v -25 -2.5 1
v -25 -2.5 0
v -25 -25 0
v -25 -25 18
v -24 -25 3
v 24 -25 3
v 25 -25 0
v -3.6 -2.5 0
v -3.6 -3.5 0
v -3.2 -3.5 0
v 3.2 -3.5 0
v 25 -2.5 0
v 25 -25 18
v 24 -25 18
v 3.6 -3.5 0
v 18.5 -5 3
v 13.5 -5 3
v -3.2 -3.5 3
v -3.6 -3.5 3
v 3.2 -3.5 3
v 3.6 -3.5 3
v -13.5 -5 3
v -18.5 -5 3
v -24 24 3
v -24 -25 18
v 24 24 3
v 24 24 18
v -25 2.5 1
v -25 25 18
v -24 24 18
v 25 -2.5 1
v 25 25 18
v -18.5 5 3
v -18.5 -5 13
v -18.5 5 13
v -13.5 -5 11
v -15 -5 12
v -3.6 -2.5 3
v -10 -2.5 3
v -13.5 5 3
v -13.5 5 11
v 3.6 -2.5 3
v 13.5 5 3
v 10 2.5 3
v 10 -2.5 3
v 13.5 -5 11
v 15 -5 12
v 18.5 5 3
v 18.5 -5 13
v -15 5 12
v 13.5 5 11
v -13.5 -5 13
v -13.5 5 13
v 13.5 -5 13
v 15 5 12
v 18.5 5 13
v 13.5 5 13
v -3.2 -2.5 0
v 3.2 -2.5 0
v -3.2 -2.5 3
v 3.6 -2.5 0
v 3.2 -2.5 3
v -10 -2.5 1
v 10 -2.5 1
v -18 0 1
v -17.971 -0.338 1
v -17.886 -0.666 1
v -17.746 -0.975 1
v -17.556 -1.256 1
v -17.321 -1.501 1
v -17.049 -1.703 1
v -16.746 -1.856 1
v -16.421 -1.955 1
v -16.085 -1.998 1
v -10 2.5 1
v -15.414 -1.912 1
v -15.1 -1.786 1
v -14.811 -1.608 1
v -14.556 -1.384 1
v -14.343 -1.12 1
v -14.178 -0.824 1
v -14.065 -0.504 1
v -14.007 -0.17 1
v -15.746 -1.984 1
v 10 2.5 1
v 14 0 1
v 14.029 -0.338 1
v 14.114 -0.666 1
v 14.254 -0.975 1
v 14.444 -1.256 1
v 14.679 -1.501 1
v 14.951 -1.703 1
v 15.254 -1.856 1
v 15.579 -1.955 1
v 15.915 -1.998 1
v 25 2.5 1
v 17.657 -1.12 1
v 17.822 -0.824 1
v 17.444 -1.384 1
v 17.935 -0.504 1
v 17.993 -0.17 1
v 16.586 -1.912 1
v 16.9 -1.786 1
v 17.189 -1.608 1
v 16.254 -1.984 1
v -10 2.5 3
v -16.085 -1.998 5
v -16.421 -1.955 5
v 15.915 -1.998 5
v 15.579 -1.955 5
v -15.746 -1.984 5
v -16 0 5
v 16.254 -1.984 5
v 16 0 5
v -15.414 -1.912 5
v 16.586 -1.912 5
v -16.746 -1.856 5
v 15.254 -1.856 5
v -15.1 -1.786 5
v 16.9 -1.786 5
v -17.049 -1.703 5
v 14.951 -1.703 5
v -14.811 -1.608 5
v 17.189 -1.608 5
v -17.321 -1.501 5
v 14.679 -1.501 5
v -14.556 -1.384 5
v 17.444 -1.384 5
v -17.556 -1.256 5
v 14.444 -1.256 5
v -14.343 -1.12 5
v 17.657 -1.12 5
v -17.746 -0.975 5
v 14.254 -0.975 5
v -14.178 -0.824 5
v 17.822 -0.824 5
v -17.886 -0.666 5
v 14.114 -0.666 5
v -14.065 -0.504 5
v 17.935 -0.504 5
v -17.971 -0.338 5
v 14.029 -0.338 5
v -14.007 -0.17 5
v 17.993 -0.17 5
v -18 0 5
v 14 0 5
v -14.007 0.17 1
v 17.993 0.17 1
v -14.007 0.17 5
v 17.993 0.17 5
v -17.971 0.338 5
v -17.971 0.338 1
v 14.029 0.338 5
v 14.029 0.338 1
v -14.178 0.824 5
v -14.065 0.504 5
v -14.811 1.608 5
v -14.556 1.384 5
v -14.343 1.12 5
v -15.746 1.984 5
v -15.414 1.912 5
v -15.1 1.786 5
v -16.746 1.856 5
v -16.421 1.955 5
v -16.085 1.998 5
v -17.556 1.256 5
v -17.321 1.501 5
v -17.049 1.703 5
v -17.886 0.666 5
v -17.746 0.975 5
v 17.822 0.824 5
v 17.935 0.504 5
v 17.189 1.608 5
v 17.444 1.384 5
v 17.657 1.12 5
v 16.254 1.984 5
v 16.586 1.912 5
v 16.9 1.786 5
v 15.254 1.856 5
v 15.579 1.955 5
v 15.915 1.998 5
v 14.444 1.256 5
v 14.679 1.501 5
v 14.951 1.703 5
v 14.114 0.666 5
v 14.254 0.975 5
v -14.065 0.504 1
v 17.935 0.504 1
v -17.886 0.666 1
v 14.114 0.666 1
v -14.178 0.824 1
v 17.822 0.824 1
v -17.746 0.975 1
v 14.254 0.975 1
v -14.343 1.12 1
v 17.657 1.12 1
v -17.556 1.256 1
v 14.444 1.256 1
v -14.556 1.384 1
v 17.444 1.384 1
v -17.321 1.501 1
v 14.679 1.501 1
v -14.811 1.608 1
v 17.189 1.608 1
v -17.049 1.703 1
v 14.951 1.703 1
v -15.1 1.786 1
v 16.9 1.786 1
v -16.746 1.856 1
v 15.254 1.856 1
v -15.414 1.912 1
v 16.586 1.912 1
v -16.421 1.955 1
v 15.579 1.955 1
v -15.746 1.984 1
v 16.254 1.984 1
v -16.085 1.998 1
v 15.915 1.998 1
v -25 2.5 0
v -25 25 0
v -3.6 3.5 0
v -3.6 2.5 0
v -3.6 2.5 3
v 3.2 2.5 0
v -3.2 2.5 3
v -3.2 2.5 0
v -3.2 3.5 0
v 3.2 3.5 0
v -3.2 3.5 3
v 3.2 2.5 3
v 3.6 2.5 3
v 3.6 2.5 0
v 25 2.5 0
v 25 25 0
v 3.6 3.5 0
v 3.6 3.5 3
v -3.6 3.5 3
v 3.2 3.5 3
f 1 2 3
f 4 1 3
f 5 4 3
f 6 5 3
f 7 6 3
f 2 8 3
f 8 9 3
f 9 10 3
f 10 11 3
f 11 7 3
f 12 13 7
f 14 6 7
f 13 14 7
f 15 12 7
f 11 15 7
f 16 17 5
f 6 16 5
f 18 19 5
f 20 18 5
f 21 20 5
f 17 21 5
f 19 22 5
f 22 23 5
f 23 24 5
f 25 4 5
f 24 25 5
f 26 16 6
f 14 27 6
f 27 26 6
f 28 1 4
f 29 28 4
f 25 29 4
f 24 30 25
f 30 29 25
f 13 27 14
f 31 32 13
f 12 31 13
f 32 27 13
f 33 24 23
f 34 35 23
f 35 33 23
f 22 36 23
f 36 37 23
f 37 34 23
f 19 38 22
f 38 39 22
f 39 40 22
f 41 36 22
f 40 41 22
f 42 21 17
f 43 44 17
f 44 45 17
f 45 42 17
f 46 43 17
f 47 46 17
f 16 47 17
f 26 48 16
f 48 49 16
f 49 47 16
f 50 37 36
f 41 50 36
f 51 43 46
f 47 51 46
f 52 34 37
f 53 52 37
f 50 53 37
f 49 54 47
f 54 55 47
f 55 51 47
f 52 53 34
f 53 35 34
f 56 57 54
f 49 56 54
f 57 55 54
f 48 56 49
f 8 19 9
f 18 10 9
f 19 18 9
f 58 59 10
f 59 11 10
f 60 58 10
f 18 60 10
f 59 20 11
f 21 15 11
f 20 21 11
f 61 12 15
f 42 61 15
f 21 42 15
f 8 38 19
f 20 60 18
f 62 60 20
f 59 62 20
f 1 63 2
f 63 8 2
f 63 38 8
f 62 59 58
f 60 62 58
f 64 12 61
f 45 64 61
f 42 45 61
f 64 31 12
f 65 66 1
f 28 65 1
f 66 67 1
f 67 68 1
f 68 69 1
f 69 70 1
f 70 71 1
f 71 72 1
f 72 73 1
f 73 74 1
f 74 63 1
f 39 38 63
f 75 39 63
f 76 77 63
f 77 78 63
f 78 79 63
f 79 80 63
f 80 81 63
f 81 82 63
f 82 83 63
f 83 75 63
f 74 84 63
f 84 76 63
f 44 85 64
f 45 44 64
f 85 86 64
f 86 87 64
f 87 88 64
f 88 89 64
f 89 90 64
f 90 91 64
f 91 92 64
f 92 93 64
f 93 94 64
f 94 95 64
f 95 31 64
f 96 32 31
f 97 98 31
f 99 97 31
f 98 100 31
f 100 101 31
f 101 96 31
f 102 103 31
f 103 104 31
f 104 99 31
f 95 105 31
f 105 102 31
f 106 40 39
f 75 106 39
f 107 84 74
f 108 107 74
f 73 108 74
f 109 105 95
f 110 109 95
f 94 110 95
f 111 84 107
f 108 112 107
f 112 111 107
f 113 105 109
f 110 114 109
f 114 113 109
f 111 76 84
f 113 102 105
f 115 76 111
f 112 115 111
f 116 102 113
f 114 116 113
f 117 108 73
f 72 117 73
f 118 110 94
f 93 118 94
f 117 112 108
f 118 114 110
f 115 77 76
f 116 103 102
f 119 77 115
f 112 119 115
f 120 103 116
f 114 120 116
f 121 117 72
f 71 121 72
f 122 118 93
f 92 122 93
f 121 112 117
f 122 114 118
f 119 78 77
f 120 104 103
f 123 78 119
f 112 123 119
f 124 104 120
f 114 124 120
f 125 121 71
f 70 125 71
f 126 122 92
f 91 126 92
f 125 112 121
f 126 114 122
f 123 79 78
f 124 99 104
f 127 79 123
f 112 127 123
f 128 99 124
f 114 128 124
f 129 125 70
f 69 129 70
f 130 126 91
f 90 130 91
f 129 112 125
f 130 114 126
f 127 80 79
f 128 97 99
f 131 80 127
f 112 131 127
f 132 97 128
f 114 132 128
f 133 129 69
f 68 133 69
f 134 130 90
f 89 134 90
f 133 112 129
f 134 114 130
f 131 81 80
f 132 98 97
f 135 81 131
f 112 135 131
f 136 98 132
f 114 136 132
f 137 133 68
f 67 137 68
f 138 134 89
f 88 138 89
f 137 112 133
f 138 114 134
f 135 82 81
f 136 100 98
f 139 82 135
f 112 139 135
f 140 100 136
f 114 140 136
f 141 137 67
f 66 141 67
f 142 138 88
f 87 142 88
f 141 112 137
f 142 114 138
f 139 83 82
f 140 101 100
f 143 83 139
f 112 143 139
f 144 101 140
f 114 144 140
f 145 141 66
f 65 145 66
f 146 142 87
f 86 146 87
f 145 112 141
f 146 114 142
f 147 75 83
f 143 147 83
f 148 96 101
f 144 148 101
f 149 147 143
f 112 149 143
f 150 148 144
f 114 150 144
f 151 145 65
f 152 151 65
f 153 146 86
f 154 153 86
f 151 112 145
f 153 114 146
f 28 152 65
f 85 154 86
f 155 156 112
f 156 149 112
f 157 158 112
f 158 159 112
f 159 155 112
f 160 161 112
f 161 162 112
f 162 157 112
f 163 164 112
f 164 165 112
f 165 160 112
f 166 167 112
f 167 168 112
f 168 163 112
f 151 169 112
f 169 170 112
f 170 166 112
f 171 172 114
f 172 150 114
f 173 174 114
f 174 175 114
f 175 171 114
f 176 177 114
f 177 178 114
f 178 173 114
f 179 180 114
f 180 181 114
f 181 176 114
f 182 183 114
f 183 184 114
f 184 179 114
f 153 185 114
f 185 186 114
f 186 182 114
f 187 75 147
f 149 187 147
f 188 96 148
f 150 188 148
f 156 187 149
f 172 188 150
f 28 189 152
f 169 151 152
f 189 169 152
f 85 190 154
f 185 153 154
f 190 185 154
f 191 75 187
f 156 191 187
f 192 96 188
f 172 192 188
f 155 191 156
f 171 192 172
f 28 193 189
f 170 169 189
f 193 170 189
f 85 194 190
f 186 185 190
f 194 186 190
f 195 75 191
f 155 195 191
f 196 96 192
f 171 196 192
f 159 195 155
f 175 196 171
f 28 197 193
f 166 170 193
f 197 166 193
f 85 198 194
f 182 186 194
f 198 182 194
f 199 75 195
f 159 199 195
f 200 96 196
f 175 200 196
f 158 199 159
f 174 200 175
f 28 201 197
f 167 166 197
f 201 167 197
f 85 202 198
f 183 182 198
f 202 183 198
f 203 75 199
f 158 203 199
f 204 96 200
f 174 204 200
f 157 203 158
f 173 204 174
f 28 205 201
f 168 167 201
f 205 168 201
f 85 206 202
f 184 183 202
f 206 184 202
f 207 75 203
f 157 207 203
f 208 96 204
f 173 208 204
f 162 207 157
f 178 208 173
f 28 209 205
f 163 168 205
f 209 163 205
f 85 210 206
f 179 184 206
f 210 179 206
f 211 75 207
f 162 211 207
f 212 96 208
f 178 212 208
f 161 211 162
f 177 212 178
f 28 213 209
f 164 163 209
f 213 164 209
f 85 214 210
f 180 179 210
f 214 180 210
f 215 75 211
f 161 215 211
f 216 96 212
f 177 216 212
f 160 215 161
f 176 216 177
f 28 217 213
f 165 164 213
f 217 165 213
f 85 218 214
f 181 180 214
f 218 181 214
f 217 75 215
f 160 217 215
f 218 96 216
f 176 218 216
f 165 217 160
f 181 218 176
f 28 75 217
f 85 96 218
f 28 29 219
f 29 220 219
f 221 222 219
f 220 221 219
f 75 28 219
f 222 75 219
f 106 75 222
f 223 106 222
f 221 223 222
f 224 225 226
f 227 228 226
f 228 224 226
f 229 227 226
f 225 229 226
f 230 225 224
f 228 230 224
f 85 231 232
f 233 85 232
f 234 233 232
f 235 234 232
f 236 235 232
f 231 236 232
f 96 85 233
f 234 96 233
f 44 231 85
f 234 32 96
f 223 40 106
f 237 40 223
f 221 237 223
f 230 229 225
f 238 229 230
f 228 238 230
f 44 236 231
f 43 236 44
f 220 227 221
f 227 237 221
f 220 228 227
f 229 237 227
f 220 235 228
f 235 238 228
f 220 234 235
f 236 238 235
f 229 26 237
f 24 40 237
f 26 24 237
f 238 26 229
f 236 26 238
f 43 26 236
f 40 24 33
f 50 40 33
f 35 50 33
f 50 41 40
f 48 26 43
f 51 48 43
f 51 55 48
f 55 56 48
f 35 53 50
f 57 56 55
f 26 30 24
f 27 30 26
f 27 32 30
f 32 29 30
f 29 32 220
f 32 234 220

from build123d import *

# Parameters (mm, degrees)
SKICA1_W                 = 50
SKICA1_H                 = 50
P_IDAT_VYSUNUT_M2_DEPTH  = 3
SKICA4_W                 = 20
SKICA4_H                 = 5
ODEBRAT_VYSUNUT_M1_DEPTH = 2
SKICA5_W                 = 50
SKICA5_H                 = 5
ODEBRAT_VYSUNUT_M3_DEPTH = 1
SKICA10_W                = 5
SKICA10_H                = 10
P_IDAT_VYSUNUT_M6_DEPTH  = 10
ODEBRAT_VYSUNUT_M6_DEPTH = 10
P_IDAT_VYSUNUT_M9_DEPTH  = 15
SKICA16_W                = 0.4
SKICA16_H                = 7
ODEBRAT_VYSUNUT_M7_DEPTH = 10
SKICA17_R                = 2
ODEBRAT_VYSUNUT_M8_DEPTH = 4


with BuildPart() as part:
    # Skica1 → Přidat vysunutím2 (new body)
    with BuildSketch(Plane.XY):
        Rectangle(SKICA1_W, SKICA1_H)
    extrude(amount=P_IDAT_VYSUNUT_M2_DEPTH)

    # Skica4 → Odebrat vysunutím1 (cut)
    with BuildSketch(Plane.XY.offset(3)):
        Rectangle(SKICA4_W, SKICA4_H)
    extrude(amount=-ODEBRAT_VYSUNUT_M1_DEPTH, mode=Mode.SUBTRACT)

    # Skica5 → Odebrat vysunutím3 (cut)
    with BuildSketch(Plane(origin=(0, 0, 0), x_dir=(-1, 0, 0), z_dir=(0, 0, -1))):
        Rectangle(SKICA5_W, SKICA5_H)
    extrude(amount=-ODEBRAT_VYSUNUT_M3_DEPTH, mode=Mode.SUBTRACT)

    # Skica10 → Přidat vysunutím6 (add)
    with BuildSketch(Plane.XY.offset(3)):
        with Locations((-16, 0)):
            Rectangle(SKICA10_W, SKICA10_H)
        with Locations((16, 0)):
            Rectangle(SKICA10_W, SKICA10_H)
    extrude(amount=P_IDAT_VYSUNUT_M6_DEPTH)

    # Skica12 → Odebrat vysunutím6 (cut)
    with BuildSketch(Plane(origin=(0, 5, 0), x_dir=(1, 0, 0), z_dir=(0, 1, 0))):
        Polygon((-13.5, -13), (-13.5, -11), (-15, -12), align=None)
        Polygon((13.5, -13), (13.5, -11), (15, -12), align=None)
    extrude(amount=-ODEBRAT_VYSUNUT_M6_DEPTH, mode=Mode.SUBTRACT)

    # Skica14 → Přidat vysunutím9 (add)
    with BuildSketch(Plane.XY.offset(3)):
        Polygon((25, 25), (-25, 25), (-25, -25), (-24, -25), (-24, 24), (24, 24), (24, -25), (25, -25), align=None)
    extrude(amount=P_IDAT_VYSUNUT_M9_DEPTH)

    # Skica16 → Odebrat vysunutím7 (cut)
    with BuildSketch(Plane(origin=(0, 0, 0), x_dir=(-1, 0, 0), z_dir=(0, 0, -1))):
        with Locations((-3.4, 0)):
            Rectangle(SKICA16_W, SKICA16_H)
        with Locations((3.4, 0)):
            Rectangle(SKICA16_W, SKICA16_H)
    extrude(amount=-ODEBRAT_VYSUNUT_M7_DEPTH, mode=Mode.SUBTRACT)

    # Skica17 → Odebrat vysunutím8 (cut)
    with BuildSketch(Plane(origin=(0, 0, 1), x_dir=(-1, 0, 0), z_dir=(0, 0, -1))):
        with Locations((-16, 0)):
            Circle(SKICA17_R)
        with Locations((16, 0)):
            Circle(SKICA17_R)
    extrude(amount=-ODEBRAT_VYSUNUT_M8_DEPTH, mode=Mode.SUBTRACT)


solid = part.part
